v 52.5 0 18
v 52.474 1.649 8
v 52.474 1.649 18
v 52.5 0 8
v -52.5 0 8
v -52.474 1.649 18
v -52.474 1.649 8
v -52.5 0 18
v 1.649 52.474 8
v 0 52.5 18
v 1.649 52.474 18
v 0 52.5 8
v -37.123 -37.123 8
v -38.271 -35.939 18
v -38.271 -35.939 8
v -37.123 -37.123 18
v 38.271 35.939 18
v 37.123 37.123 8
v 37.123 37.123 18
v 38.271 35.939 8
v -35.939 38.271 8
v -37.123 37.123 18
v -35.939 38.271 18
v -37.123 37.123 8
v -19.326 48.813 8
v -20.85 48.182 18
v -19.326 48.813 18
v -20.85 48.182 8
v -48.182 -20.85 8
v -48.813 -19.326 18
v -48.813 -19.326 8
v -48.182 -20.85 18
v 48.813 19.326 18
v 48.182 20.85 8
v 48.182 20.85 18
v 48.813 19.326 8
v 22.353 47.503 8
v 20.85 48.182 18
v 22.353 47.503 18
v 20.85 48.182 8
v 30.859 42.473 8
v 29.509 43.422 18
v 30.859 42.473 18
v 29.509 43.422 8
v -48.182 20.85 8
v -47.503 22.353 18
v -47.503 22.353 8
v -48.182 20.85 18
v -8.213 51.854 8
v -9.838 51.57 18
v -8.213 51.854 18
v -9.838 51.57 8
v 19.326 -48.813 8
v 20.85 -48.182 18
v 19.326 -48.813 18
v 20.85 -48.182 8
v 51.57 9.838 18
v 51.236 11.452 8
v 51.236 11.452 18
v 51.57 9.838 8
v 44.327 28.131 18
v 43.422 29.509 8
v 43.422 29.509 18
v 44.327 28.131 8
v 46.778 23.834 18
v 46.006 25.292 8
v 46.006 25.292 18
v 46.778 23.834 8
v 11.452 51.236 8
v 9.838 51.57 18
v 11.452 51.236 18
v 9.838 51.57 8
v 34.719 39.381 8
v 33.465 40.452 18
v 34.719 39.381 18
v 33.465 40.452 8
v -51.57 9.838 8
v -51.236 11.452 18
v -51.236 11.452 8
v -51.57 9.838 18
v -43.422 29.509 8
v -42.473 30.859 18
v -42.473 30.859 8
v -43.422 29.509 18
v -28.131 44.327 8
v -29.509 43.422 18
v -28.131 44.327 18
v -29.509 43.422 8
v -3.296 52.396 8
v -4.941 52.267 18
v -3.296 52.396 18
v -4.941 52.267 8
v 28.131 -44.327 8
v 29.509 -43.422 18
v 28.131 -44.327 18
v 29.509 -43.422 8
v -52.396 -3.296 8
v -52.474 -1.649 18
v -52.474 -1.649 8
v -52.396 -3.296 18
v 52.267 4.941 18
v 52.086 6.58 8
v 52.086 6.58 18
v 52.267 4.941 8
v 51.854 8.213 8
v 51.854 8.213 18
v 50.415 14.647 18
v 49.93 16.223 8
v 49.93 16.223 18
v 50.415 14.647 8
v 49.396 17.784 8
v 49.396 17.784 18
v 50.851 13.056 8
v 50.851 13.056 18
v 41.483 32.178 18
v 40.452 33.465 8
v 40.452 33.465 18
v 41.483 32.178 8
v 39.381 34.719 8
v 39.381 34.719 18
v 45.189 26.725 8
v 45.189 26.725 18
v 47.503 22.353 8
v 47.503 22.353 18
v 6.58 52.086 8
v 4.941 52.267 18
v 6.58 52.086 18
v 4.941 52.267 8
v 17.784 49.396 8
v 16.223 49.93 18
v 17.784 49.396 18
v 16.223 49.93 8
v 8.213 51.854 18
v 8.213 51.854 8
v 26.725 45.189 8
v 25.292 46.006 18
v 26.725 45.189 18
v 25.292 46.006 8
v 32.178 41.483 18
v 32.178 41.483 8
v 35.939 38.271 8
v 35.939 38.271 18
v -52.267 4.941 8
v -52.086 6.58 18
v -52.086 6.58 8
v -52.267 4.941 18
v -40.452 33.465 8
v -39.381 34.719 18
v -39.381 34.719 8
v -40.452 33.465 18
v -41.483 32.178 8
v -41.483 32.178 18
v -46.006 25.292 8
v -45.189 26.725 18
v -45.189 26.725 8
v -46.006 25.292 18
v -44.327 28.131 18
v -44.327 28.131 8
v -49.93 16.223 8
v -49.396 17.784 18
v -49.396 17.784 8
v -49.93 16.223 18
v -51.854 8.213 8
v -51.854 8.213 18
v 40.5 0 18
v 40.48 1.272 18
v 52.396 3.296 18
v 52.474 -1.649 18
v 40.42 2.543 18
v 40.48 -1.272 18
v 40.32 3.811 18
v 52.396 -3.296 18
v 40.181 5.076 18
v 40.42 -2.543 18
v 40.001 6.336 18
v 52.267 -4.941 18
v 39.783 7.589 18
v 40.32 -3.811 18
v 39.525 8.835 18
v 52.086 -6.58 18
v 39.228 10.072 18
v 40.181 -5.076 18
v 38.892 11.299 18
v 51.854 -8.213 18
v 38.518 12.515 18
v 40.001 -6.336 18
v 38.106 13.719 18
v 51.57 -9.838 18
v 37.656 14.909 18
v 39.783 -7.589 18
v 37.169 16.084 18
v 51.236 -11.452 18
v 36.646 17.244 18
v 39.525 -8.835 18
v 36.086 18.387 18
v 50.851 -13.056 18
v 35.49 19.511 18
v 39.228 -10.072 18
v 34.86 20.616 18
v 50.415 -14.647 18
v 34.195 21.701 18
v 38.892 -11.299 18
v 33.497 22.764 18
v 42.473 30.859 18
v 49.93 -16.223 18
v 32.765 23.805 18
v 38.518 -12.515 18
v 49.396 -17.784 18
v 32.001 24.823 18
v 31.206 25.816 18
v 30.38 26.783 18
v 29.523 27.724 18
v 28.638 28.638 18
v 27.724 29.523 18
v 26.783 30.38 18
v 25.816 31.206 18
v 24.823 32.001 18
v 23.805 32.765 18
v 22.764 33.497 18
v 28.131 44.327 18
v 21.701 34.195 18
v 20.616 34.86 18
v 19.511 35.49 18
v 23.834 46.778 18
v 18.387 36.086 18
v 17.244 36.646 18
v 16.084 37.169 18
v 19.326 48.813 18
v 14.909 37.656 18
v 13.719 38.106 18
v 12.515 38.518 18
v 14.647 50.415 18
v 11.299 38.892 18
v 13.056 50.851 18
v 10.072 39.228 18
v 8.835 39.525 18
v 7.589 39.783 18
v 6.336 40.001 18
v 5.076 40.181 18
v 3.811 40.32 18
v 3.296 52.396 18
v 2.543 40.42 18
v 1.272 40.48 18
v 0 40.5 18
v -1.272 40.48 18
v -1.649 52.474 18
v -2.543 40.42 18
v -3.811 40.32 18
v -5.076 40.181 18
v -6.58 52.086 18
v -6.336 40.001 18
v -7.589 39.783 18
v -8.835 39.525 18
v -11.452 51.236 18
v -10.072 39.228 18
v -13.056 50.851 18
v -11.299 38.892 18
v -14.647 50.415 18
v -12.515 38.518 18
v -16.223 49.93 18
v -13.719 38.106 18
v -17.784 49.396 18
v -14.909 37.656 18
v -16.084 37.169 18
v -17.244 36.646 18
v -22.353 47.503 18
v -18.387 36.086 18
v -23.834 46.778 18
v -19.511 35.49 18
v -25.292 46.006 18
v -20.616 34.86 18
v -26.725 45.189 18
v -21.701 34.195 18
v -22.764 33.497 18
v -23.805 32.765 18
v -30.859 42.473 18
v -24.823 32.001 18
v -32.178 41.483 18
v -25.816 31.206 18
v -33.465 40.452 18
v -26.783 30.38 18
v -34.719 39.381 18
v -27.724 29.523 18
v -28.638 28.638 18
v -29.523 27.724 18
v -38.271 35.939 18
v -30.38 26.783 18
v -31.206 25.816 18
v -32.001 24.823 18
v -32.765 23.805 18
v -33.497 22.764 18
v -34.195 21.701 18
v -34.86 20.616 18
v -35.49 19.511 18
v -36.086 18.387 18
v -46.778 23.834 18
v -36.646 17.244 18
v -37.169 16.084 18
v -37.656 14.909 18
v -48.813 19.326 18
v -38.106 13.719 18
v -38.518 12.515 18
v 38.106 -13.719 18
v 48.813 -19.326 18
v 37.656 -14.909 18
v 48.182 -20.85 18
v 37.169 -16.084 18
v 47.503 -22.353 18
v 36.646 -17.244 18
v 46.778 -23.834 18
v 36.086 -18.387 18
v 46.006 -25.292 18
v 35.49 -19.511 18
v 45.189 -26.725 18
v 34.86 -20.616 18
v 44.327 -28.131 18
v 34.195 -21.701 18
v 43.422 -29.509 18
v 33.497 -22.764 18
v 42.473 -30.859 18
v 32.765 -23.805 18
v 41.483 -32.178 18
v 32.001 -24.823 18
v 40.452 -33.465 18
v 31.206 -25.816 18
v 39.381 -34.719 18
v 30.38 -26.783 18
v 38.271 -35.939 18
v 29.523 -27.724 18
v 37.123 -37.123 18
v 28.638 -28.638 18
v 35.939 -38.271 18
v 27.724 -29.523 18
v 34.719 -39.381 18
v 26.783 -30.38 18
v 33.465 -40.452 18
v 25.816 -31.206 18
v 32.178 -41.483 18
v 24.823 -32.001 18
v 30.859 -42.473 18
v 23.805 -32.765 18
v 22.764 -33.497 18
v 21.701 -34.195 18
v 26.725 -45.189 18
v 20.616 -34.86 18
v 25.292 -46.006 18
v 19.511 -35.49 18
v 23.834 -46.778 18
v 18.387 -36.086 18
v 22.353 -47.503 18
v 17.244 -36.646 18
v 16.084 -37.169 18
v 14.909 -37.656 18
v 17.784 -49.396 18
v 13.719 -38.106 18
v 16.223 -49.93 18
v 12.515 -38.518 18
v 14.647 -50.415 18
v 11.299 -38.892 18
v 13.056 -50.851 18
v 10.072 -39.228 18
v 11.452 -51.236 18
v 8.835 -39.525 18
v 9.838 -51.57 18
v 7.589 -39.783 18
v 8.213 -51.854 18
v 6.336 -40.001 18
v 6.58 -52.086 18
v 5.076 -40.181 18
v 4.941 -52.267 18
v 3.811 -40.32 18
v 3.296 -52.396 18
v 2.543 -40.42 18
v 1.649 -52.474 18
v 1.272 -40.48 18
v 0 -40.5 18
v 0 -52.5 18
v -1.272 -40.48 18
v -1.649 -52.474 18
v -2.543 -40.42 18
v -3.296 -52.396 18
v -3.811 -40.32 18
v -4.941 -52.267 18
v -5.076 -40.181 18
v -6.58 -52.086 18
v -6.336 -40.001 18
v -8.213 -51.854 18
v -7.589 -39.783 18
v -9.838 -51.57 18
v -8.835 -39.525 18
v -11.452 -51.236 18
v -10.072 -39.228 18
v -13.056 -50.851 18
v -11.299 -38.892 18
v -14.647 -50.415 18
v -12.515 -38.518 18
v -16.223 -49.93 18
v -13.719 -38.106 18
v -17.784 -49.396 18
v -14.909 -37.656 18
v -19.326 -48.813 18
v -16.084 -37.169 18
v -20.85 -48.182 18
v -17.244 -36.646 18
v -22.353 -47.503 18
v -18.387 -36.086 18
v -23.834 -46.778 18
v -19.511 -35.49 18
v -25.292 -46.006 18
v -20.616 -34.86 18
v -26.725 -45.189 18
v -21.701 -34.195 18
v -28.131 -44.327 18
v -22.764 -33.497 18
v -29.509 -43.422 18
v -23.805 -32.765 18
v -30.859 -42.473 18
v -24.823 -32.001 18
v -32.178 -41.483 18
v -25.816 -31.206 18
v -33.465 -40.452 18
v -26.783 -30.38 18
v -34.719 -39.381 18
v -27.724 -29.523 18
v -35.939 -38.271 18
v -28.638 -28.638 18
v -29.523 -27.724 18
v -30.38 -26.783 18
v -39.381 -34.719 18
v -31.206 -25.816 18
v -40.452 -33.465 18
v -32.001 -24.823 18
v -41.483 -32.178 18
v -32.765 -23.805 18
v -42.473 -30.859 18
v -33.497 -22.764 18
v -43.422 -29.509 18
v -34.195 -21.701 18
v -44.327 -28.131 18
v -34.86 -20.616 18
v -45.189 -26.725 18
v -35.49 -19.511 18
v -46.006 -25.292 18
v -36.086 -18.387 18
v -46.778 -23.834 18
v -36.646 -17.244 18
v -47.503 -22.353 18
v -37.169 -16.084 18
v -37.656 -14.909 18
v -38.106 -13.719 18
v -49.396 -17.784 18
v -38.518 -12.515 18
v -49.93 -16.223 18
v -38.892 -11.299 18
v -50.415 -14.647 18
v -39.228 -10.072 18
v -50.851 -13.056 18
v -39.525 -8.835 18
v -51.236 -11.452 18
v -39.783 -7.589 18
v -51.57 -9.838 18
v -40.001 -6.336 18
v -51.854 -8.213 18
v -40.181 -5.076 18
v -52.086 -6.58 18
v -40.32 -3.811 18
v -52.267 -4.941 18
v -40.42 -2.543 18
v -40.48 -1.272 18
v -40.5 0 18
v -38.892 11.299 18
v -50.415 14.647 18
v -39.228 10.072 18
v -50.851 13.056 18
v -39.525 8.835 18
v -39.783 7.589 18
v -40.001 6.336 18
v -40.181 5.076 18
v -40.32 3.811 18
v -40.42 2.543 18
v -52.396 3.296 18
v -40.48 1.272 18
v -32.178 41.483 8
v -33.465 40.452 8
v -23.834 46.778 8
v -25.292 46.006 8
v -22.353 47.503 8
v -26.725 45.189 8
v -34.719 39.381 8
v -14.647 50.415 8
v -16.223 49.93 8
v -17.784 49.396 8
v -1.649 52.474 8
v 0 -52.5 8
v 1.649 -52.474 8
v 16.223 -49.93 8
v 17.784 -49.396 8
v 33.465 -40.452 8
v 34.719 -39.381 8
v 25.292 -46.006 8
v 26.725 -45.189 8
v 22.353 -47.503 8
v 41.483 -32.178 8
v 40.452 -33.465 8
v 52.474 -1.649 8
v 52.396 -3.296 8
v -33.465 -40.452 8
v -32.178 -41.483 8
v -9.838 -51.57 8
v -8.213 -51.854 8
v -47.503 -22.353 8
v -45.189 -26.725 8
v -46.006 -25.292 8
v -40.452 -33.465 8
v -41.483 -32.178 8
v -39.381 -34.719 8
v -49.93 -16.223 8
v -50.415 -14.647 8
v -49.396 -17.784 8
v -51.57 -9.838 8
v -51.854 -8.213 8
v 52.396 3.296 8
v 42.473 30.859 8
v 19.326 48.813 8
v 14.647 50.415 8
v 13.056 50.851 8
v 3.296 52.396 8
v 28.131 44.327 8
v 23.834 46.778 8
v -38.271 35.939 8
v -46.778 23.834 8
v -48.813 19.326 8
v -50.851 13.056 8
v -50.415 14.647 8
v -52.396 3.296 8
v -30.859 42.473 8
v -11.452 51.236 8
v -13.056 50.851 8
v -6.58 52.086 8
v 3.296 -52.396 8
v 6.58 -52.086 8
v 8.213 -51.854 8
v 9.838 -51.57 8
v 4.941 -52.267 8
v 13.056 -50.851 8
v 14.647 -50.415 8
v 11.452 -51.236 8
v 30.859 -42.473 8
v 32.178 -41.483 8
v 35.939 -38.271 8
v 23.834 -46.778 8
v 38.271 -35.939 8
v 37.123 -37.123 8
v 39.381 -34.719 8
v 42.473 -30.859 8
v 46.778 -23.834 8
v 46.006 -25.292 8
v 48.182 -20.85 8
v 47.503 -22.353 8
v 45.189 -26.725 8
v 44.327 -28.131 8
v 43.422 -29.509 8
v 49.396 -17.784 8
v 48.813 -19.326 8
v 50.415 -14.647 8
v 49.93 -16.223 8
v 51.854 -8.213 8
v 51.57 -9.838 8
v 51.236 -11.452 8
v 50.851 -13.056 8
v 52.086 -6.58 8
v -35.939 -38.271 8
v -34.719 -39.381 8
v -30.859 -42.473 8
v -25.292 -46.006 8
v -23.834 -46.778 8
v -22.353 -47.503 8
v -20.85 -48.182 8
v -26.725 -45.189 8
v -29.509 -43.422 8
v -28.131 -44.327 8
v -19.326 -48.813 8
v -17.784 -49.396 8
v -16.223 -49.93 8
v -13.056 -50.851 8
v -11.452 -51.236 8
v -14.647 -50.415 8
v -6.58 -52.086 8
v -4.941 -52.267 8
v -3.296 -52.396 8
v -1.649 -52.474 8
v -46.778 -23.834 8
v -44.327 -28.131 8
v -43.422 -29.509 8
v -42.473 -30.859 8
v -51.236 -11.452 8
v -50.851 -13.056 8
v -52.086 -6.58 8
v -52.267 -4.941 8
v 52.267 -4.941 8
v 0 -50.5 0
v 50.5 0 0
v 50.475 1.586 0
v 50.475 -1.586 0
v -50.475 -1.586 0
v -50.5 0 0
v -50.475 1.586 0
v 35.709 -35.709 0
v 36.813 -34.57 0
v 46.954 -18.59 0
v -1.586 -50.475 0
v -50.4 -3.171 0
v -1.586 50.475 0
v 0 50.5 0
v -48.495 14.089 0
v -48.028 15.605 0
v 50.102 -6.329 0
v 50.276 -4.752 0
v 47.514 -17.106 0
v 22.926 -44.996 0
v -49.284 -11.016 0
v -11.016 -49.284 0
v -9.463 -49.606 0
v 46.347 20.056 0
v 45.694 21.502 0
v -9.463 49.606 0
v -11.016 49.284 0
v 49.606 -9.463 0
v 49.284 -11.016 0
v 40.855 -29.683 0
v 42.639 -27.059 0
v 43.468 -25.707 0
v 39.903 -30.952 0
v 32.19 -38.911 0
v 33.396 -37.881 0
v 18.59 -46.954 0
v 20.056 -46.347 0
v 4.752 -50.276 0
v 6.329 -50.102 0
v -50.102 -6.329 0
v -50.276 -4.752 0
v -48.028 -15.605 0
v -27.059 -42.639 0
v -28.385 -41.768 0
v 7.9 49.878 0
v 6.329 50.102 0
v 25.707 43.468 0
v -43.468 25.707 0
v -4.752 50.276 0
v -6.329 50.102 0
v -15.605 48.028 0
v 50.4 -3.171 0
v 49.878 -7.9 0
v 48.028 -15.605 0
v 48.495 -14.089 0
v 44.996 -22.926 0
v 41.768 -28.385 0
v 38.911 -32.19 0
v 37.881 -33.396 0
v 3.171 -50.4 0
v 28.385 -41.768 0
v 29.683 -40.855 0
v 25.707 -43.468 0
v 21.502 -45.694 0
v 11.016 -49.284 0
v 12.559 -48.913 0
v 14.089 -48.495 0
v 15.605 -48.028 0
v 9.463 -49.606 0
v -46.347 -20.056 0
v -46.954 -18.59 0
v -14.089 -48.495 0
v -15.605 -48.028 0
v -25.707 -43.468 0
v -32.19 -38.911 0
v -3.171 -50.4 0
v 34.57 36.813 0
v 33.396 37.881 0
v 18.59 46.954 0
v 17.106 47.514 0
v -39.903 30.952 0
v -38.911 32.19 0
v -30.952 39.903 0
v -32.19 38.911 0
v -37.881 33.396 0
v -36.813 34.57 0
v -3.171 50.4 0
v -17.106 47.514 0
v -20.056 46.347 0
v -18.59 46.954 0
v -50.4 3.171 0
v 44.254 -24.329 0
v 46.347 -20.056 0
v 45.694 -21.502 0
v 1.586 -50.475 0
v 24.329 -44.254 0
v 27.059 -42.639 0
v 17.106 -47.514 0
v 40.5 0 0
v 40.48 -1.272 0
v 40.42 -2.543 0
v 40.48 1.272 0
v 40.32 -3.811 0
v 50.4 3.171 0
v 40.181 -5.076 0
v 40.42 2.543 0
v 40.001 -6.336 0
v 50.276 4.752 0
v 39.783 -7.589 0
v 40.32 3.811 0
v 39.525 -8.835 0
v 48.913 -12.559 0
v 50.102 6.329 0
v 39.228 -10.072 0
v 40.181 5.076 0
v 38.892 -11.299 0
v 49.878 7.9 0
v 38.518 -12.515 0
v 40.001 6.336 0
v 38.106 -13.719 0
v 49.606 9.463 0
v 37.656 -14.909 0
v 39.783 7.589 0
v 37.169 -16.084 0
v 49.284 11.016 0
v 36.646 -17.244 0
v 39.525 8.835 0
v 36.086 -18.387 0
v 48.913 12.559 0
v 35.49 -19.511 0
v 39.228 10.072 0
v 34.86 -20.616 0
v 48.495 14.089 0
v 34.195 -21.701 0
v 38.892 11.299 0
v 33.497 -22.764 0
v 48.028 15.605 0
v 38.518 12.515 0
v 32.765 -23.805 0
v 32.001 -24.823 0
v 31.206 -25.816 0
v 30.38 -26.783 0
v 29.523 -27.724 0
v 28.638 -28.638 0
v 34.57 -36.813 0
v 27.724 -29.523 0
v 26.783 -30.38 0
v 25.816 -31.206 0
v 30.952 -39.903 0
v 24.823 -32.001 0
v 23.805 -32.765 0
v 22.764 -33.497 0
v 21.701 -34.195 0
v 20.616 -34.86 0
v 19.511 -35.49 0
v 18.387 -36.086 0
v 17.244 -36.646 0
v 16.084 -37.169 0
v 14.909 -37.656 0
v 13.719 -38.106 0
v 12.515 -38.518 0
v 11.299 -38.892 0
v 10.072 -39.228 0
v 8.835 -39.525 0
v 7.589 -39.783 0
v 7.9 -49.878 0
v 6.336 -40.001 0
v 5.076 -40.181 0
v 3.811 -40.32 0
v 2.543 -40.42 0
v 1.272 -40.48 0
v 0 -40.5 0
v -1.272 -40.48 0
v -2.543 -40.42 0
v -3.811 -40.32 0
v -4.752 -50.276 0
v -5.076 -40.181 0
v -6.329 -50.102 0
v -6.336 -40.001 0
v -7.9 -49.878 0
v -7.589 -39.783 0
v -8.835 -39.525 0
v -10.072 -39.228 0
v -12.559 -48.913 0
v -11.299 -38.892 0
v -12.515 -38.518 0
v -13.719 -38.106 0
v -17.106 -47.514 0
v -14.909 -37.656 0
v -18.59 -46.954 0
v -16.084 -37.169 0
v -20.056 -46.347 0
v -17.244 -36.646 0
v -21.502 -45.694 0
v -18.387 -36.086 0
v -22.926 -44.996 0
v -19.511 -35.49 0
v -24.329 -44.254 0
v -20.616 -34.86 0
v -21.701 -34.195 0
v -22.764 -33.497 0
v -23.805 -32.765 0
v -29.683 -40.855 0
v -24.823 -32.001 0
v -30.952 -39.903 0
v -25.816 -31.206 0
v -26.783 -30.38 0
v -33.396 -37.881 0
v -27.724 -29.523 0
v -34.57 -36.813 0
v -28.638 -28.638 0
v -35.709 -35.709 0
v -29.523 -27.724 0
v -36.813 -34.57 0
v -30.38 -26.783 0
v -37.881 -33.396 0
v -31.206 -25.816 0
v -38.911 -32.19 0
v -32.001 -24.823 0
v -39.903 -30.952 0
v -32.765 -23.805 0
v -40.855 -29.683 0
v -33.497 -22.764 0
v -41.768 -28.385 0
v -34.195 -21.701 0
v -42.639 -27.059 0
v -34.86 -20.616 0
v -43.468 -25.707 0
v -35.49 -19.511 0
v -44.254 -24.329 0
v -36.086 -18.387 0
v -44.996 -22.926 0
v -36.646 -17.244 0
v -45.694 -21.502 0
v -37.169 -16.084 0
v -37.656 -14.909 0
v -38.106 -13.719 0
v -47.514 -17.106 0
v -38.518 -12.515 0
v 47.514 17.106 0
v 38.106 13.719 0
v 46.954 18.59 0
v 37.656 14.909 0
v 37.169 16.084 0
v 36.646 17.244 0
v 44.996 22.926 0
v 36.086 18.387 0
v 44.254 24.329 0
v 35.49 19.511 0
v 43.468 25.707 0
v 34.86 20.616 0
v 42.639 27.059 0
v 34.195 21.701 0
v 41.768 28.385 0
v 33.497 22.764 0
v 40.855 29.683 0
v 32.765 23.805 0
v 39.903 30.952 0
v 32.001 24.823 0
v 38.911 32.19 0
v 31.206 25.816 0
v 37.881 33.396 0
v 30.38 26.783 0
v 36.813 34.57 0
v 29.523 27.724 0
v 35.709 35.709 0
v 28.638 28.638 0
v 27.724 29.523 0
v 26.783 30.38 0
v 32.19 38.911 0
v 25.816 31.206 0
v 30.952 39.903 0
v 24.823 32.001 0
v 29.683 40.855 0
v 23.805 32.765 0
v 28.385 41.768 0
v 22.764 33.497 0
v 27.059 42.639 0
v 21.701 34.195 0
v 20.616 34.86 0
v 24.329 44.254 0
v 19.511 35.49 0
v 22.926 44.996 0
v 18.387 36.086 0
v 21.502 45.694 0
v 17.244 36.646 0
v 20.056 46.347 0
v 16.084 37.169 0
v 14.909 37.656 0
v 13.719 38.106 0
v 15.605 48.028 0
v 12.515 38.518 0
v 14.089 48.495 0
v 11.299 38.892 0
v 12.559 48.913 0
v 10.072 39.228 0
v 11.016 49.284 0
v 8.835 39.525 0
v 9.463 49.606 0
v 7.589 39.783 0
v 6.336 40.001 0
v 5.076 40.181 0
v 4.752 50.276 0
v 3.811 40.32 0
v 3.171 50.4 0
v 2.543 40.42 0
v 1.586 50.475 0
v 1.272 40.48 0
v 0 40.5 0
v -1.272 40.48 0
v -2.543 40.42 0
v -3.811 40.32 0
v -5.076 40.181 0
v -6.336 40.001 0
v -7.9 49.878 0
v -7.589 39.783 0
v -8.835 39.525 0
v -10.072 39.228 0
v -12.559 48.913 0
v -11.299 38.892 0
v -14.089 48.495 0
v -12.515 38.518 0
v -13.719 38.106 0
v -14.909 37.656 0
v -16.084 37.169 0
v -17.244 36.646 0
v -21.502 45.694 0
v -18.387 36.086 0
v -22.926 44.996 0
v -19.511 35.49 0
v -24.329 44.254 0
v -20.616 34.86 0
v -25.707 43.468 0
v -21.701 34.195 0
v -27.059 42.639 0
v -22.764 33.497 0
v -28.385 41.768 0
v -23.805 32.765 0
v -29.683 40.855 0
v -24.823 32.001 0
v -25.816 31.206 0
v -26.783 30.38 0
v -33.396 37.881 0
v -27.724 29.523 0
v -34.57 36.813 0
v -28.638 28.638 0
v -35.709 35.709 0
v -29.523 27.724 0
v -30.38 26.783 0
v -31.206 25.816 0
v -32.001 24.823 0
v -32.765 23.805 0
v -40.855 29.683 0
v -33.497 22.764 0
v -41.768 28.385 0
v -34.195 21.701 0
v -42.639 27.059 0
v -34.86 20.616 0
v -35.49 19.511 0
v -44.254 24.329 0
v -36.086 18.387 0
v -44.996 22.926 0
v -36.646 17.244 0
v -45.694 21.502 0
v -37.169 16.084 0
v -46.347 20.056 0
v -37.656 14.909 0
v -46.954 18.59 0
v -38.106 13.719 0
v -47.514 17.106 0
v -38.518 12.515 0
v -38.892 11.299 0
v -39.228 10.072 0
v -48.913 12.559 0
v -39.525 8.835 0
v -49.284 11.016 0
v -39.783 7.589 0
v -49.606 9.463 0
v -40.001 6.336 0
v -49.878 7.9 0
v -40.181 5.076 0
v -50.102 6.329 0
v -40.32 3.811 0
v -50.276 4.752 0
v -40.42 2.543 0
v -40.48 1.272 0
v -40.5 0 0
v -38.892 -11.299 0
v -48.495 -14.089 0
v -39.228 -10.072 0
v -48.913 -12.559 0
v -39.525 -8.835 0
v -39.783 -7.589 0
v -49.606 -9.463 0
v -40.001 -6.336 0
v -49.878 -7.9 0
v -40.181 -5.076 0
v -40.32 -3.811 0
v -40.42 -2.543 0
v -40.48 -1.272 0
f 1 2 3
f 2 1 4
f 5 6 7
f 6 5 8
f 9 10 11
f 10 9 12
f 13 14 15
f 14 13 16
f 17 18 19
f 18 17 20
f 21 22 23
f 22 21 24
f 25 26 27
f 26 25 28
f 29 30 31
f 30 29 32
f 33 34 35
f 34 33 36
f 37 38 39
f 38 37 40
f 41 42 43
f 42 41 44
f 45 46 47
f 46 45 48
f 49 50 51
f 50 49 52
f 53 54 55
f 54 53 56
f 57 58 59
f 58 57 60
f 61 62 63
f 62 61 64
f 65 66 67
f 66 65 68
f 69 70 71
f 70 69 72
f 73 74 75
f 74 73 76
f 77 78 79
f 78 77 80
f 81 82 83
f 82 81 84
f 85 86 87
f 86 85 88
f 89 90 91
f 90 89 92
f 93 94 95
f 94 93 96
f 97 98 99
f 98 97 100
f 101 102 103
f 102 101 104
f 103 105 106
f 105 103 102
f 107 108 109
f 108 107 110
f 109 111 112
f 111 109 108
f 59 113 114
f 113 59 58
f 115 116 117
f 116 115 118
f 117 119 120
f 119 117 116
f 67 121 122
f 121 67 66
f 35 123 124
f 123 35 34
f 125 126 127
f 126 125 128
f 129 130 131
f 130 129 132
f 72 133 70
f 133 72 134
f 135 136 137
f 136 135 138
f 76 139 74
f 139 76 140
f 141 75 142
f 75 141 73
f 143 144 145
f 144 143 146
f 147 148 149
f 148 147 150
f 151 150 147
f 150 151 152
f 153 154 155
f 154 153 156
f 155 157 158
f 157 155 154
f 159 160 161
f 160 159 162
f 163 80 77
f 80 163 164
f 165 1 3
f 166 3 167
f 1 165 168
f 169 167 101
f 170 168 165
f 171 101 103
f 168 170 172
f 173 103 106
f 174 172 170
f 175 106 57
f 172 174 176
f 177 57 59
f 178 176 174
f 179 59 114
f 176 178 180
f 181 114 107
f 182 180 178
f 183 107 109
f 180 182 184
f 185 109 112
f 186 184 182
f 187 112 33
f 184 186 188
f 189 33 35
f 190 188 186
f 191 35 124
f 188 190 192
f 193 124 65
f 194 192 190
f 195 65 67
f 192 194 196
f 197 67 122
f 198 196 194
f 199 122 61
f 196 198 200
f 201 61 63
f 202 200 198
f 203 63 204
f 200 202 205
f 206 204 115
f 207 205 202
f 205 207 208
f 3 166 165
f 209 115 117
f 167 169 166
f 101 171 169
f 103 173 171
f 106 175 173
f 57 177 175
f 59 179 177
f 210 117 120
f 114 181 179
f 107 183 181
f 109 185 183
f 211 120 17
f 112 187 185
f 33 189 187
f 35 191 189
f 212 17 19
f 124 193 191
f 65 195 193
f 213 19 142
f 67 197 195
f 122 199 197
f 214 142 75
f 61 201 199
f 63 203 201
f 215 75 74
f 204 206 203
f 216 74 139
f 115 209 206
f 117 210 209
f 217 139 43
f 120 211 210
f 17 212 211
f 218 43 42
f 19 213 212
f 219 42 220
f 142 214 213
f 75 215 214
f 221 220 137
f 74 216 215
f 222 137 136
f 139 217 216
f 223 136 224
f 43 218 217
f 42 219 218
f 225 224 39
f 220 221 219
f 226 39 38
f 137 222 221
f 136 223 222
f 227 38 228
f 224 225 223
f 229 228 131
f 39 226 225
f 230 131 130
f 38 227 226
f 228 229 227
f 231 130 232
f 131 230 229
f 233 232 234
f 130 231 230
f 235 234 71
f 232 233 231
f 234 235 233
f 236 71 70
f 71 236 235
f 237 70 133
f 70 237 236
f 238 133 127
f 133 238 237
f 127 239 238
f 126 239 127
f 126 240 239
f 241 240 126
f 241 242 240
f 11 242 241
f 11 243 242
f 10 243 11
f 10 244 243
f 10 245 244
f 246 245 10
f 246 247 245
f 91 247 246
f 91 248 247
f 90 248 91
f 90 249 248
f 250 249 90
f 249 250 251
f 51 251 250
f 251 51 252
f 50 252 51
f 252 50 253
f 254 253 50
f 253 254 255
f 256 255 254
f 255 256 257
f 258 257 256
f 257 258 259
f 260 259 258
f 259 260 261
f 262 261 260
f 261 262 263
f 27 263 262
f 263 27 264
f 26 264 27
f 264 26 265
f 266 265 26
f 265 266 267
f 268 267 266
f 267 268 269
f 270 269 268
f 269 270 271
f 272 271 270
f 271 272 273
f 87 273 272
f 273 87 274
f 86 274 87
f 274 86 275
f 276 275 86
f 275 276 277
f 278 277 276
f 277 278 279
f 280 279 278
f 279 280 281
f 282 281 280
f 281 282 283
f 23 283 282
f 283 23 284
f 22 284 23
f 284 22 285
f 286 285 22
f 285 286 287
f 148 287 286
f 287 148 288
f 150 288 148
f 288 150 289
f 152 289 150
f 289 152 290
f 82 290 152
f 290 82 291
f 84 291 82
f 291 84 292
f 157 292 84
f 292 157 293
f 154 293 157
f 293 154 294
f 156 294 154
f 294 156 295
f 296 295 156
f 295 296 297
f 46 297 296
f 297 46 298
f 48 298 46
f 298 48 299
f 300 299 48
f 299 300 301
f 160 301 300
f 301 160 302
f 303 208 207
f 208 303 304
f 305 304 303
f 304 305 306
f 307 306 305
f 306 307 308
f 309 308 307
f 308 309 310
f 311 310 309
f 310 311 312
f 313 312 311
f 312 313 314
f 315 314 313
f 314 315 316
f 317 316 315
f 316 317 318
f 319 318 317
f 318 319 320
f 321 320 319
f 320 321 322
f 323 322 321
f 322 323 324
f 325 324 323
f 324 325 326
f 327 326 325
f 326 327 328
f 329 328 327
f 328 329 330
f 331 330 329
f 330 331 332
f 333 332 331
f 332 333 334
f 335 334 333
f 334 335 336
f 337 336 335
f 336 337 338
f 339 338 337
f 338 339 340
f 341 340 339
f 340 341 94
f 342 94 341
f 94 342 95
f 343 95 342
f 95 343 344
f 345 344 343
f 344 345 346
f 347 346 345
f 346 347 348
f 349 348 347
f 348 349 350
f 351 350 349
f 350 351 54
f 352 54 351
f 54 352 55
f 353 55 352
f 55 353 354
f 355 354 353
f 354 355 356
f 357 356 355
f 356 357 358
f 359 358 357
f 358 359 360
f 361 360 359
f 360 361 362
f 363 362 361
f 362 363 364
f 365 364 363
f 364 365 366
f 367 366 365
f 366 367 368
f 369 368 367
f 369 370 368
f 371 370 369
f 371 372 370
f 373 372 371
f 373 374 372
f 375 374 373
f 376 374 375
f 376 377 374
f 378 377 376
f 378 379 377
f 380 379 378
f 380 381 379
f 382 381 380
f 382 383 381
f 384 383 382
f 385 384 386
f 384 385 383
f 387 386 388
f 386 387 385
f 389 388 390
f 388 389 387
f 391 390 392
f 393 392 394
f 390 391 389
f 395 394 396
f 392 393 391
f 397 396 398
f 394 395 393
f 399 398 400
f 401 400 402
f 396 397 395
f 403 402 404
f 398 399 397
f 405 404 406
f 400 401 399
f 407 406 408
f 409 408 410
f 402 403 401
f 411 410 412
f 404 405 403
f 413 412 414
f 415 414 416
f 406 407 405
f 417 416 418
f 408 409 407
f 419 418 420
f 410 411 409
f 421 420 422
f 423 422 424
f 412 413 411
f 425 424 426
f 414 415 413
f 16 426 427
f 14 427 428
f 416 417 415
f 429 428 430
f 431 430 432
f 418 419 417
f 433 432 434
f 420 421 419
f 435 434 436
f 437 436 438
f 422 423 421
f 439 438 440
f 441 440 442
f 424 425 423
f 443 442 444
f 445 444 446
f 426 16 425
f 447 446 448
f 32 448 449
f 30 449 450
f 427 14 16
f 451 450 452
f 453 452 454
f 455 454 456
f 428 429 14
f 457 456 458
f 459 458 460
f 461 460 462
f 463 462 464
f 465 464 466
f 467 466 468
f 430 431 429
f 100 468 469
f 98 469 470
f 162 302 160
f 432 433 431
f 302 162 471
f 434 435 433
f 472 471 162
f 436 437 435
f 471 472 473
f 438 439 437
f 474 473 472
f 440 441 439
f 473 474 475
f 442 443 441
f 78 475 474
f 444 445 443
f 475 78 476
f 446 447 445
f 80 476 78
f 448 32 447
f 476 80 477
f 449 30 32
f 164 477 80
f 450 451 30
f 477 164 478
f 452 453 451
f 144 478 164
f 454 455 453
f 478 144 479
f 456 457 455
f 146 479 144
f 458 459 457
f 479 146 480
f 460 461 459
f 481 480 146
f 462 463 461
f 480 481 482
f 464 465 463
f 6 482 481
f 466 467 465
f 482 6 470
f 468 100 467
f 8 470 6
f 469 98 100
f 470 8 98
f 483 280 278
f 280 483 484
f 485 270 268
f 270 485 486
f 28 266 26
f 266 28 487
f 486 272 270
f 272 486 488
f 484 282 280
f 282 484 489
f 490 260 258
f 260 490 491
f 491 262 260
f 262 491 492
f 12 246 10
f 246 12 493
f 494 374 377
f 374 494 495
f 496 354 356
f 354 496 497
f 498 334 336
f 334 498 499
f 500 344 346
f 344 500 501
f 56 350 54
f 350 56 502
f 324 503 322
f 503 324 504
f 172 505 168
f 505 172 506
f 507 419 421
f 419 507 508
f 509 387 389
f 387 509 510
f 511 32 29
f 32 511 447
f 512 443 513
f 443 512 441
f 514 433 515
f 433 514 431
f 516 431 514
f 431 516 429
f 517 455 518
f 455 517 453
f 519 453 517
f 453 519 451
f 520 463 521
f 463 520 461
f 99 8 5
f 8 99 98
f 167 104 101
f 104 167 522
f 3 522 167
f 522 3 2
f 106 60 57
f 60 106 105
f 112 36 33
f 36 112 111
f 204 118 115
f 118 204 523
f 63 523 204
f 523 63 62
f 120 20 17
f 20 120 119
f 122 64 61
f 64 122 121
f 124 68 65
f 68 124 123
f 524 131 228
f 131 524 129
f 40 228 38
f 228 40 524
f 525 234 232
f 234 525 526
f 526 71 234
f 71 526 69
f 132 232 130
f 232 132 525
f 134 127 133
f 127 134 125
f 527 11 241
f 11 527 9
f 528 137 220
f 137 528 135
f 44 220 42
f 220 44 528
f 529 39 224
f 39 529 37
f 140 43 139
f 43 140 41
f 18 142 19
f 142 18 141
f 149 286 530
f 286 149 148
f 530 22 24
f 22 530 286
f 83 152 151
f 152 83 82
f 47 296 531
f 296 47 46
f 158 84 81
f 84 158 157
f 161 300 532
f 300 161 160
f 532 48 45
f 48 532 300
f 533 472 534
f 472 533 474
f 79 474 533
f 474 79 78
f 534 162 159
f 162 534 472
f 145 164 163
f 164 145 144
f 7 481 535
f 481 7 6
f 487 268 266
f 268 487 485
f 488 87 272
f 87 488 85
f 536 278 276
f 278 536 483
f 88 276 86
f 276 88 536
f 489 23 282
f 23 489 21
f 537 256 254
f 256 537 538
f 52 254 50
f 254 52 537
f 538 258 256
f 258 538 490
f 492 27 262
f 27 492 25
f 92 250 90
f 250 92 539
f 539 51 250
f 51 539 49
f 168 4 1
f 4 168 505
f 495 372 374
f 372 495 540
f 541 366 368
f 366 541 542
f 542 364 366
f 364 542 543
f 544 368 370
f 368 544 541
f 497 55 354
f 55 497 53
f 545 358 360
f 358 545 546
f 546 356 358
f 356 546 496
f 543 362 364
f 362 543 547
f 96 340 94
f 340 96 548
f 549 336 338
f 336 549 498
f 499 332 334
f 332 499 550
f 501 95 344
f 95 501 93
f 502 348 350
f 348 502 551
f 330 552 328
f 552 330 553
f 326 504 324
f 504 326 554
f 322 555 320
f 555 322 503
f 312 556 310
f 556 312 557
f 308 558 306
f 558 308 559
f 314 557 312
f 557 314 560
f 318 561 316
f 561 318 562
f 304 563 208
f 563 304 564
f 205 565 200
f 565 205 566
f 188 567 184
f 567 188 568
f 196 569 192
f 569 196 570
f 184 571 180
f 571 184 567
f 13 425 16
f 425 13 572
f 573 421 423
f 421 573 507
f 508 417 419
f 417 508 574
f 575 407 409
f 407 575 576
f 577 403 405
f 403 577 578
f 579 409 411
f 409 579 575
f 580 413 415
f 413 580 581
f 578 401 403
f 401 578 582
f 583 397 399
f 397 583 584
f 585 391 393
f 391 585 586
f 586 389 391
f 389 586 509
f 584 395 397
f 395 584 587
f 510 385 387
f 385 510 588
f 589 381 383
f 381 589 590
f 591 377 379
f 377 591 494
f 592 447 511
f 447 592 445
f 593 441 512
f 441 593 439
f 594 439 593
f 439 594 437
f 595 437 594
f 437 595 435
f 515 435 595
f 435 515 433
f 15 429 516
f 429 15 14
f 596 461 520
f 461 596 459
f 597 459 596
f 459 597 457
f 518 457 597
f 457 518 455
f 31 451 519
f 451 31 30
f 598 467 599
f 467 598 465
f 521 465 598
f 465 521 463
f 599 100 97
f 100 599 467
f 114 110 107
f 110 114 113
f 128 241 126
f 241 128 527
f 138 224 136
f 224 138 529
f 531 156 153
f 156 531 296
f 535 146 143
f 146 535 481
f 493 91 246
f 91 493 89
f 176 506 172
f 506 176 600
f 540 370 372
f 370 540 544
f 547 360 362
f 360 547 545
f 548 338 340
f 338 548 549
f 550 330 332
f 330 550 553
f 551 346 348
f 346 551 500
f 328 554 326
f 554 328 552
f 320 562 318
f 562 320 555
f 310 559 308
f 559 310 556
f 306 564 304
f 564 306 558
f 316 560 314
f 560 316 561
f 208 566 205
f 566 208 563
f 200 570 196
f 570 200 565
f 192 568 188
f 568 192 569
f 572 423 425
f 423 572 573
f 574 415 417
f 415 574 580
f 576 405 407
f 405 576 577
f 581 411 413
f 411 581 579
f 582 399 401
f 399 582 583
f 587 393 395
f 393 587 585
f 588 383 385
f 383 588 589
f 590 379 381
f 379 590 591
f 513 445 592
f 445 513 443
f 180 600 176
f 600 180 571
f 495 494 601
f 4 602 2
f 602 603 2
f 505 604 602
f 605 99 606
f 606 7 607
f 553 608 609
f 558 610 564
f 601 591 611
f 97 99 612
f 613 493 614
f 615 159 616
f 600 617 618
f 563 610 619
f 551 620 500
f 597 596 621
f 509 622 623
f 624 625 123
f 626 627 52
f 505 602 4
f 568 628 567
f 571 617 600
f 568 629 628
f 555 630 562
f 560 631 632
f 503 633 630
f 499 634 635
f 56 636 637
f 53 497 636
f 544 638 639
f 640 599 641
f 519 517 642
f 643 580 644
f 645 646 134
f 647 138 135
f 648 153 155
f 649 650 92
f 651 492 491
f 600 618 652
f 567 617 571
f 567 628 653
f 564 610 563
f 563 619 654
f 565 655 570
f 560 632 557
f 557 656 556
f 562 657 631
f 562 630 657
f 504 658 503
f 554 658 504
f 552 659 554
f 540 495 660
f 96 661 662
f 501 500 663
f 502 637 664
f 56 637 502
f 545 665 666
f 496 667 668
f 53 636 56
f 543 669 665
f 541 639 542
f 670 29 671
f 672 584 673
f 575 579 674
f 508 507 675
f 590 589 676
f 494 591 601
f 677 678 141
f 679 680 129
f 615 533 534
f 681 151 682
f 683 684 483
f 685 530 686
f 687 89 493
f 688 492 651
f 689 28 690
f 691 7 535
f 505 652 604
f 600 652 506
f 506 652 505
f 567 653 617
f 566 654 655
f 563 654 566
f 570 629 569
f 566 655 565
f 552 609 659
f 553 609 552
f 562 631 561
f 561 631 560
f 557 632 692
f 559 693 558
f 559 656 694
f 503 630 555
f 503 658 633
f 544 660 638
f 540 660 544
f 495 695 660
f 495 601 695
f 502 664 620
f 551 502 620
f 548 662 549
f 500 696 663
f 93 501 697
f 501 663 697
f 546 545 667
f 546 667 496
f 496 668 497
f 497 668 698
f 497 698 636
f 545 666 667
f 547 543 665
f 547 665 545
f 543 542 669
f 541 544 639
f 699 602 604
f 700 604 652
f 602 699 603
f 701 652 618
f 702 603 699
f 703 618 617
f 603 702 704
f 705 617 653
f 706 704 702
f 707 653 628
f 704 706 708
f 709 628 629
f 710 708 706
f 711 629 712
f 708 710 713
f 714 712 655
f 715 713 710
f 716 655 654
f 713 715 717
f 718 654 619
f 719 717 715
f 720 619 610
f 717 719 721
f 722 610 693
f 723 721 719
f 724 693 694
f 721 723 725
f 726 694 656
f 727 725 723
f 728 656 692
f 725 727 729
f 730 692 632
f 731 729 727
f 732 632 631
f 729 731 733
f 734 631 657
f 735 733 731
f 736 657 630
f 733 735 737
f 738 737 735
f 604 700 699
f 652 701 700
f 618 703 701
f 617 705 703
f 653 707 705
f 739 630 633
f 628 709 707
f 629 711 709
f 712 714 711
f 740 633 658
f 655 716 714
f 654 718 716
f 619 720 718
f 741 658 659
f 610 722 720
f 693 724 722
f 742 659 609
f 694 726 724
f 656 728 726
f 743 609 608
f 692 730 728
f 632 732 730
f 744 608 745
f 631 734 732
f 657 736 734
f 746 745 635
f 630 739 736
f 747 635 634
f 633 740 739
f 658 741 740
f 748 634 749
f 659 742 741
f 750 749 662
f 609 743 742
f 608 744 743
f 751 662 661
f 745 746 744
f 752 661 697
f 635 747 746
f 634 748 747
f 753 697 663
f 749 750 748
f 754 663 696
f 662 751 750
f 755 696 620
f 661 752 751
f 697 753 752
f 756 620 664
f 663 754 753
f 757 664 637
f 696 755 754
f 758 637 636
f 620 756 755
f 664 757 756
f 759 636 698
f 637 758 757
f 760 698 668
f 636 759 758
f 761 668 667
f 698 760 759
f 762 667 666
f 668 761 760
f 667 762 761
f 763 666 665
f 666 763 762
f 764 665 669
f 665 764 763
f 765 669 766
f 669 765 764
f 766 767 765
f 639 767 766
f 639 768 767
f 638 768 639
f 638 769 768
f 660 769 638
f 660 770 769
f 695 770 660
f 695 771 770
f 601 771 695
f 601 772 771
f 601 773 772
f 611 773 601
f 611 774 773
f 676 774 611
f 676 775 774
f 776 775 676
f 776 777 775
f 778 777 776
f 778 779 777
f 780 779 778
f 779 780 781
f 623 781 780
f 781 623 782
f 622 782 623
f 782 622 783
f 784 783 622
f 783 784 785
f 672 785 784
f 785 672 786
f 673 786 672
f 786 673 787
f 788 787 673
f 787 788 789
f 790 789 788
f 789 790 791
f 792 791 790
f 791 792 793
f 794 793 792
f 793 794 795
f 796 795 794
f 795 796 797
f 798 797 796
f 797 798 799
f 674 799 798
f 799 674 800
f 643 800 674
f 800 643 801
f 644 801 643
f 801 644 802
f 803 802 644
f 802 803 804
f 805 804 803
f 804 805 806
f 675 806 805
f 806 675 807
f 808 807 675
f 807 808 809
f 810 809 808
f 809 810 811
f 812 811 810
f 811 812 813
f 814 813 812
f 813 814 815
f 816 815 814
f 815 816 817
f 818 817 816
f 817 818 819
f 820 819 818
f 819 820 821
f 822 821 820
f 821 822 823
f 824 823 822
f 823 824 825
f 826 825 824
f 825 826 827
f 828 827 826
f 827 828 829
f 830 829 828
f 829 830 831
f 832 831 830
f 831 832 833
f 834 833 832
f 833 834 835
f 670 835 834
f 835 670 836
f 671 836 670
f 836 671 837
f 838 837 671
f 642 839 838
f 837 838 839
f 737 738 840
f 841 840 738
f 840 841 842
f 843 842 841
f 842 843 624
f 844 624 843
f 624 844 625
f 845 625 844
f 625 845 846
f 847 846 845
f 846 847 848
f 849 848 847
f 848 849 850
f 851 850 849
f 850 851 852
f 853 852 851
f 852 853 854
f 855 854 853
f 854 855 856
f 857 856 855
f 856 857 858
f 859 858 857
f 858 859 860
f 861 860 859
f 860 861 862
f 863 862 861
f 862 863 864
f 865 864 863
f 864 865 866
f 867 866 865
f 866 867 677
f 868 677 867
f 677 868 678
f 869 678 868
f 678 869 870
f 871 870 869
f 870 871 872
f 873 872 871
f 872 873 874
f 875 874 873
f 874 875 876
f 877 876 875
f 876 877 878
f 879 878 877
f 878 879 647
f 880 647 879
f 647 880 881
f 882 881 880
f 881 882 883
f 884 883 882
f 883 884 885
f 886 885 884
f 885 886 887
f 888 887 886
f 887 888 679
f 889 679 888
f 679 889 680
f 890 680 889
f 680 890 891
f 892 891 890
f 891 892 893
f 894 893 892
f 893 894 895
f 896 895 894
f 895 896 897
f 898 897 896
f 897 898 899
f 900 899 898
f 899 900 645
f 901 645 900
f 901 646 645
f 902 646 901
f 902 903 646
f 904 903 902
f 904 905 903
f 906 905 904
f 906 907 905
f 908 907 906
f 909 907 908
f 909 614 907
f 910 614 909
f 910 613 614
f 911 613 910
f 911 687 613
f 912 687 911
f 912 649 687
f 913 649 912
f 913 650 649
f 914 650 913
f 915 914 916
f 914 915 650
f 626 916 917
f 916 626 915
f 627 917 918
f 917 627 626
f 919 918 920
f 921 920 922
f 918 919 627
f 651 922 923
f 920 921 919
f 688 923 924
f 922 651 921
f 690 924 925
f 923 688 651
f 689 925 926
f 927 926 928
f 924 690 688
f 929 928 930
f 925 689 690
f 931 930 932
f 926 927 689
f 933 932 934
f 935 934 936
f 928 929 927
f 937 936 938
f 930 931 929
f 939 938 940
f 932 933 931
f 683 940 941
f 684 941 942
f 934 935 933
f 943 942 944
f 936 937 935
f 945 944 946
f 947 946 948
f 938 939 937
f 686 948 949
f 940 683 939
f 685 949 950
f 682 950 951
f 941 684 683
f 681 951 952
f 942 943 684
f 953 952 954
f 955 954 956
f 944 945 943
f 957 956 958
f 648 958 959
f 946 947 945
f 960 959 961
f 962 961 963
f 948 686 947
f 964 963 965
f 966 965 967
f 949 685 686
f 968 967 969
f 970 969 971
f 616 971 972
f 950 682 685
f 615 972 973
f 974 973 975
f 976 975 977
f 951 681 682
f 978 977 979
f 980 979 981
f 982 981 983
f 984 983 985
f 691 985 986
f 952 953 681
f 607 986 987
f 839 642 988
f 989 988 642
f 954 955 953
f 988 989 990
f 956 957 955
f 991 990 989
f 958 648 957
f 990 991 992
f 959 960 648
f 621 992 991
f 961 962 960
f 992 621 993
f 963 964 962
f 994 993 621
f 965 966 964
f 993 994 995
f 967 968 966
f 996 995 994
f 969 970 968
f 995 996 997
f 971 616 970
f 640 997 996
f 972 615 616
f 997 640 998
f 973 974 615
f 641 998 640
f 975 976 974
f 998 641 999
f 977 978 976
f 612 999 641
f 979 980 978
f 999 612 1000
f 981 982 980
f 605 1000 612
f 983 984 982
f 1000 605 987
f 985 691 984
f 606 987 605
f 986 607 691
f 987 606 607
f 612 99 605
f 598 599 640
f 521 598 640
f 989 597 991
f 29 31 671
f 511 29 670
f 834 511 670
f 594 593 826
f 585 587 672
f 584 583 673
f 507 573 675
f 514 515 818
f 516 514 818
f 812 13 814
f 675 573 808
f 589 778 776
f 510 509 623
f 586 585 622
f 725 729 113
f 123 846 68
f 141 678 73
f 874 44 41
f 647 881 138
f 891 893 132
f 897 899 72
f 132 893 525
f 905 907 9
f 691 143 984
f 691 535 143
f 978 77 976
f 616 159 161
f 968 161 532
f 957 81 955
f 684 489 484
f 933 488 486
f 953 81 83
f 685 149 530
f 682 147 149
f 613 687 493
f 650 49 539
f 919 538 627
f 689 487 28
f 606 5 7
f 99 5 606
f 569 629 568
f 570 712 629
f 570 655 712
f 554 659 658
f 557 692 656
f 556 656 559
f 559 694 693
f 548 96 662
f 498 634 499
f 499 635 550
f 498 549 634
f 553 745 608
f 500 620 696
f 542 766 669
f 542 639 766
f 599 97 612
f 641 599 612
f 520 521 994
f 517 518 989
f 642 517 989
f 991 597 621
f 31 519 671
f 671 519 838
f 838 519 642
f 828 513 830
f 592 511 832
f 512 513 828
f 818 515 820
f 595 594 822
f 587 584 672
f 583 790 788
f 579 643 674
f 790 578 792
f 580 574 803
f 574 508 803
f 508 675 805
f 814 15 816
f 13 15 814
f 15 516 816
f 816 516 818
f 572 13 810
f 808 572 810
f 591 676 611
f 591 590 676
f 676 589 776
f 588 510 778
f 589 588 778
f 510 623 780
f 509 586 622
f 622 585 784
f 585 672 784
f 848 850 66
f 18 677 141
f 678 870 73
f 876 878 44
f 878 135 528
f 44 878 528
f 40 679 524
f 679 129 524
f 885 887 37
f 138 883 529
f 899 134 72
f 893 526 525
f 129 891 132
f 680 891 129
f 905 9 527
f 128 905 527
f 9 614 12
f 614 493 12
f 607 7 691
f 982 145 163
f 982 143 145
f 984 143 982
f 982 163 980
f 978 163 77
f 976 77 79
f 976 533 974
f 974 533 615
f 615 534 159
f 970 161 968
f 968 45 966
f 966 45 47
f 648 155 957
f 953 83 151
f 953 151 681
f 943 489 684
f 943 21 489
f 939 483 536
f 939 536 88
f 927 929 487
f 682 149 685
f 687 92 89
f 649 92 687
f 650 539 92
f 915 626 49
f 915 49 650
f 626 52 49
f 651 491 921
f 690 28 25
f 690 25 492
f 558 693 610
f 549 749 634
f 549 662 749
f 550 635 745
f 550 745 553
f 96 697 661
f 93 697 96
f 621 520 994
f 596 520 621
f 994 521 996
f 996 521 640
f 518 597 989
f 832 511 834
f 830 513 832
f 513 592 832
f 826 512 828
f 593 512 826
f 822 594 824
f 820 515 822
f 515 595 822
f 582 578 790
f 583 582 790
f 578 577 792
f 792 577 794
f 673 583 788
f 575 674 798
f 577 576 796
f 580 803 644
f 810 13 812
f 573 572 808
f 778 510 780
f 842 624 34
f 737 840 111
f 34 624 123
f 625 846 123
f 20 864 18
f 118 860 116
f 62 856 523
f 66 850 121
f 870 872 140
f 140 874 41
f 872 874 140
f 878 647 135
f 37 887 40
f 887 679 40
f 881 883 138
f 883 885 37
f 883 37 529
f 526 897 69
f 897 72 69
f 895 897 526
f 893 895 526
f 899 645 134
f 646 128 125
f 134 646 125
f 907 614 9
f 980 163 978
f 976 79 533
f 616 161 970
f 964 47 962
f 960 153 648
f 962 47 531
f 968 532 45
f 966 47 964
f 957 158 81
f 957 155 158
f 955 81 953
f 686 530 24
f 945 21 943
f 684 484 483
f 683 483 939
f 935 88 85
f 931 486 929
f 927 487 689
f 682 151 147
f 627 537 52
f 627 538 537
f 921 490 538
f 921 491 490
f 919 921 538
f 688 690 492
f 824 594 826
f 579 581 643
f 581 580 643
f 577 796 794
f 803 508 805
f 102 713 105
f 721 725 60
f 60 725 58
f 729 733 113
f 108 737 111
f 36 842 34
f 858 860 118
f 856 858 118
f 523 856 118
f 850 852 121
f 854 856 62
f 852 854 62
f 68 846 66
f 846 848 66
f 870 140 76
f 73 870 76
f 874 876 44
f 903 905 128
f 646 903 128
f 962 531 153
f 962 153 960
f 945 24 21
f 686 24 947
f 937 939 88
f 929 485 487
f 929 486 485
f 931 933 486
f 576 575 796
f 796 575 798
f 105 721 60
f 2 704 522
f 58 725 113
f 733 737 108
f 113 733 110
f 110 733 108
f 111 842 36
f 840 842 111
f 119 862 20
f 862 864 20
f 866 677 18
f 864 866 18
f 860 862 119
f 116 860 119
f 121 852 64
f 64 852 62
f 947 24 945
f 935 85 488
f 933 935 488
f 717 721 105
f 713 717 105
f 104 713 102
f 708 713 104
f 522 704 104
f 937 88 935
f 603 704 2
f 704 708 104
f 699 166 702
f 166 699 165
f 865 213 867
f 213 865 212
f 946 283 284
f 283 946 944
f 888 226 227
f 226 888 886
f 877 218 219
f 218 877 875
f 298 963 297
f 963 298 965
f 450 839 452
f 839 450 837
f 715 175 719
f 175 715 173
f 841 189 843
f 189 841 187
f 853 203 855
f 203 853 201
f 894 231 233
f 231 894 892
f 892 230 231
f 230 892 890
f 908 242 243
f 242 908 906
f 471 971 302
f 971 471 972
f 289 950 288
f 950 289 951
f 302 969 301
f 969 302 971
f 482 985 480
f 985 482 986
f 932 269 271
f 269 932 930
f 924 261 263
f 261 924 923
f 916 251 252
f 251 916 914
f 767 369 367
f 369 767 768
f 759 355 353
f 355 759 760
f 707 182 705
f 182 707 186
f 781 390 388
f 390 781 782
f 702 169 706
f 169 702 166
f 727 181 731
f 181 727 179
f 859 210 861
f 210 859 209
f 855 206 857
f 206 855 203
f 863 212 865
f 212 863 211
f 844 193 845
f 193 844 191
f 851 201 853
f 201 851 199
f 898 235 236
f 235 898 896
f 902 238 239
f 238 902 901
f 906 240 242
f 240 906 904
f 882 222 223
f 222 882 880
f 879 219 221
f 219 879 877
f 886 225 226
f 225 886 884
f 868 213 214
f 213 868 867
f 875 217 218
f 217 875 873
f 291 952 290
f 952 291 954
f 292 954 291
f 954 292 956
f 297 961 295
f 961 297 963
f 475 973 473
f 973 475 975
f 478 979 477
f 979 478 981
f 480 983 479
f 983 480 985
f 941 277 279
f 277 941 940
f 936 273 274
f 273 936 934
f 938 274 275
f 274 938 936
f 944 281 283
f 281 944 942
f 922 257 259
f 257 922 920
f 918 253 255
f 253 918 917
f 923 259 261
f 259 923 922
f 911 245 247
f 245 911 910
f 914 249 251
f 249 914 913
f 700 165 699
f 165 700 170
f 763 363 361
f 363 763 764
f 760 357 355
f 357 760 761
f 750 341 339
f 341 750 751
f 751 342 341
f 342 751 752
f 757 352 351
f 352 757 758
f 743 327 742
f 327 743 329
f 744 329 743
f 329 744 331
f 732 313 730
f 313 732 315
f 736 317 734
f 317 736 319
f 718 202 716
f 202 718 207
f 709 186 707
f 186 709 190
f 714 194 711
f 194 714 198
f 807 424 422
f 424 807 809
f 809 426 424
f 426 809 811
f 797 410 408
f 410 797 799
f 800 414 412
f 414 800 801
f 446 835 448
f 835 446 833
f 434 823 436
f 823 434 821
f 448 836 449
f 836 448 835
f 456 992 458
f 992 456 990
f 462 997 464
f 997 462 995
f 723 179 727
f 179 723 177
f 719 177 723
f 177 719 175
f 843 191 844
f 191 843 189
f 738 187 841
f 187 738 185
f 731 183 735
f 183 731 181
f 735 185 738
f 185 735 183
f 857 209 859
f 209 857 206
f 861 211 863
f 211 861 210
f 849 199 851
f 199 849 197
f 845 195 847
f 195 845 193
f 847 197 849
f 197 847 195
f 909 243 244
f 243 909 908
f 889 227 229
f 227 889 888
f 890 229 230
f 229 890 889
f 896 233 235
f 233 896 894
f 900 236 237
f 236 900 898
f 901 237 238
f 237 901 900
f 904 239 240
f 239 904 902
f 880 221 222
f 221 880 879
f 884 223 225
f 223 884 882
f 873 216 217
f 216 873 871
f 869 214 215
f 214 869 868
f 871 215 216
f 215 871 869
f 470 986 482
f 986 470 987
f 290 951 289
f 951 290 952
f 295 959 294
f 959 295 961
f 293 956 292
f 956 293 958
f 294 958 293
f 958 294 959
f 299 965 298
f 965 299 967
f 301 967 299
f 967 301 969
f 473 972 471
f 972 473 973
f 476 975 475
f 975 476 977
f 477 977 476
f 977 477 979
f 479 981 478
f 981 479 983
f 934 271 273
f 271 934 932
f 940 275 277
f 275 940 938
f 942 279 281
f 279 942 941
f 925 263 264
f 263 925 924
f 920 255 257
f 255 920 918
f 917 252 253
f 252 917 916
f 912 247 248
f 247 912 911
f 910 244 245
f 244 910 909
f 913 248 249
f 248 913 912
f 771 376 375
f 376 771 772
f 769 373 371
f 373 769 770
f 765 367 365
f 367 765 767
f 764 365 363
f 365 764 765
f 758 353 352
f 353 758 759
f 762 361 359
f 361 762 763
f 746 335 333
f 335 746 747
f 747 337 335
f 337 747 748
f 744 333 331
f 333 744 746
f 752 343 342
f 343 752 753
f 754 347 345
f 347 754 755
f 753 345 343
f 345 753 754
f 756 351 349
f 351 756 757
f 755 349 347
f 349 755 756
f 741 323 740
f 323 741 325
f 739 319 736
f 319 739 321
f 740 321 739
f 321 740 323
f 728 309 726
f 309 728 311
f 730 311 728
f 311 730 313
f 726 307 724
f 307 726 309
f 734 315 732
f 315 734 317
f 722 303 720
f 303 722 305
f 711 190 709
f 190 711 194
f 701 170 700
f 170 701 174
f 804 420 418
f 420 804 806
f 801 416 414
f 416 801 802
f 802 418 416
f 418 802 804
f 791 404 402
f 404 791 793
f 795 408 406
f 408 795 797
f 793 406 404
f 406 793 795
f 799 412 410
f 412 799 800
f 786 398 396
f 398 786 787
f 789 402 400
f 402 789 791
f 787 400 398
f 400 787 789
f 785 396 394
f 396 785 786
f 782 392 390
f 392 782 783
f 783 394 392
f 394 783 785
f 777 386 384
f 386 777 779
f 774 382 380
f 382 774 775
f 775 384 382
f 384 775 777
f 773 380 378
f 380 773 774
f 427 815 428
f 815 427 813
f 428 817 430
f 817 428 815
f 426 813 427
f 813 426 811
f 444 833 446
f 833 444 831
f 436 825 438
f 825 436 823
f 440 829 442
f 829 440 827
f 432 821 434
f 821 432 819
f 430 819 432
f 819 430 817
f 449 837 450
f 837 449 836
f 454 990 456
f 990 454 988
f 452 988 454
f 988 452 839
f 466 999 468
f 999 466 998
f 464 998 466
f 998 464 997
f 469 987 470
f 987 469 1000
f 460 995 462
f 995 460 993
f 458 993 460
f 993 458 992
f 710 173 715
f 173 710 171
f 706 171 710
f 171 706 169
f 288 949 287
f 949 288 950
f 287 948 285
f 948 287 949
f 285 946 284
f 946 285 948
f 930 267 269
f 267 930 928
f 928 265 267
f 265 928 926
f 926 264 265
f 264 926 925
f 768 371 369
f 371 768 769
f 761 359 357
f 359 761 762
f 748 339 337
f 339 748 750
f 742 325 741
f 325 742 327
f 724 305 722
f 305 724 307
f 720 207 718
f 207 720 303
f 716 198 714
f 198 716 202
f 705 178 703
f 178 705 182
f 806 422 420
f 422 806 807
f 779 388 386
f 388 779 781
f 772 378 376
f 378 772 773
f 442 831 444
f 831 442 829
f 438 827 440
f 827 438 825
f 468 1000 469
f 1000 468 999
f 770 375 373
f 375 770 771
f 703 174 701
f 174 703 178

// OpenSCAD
// file: ../library_deh/deh_shapes.scad
/* **** deh_shapes.scad *****
   * Library of useful shapes
   * 20170512
*/


/*  ***** tubedeh *****
d1 = outside diameter
d2 = inside diameter
ht = height
reference is center of tube, bottom
*/
module tubedeh(d1,d2,ht)
{
   difference()
   {
     cylinder(d = d1, h = ht, center = false);
     cylinder(d = d2, h = ht + .001, center = false);
   }
}
/* ***** rounded_bar *****
 * rectangular bar with rounded end
bar with one end rounded
rounded_bar(d, l, h)
d = diameter of rounded end, and width of bar
l = length of bar from center of rounded end to end
h = thickness (height) of bar
reference is center of rounded end, bottom
*/
module rounded_bar(d, l, h)
{
    // Rounded end
    cylinder(d = d, h = h, center = false);
    // Bar
    translate([0, -d/2, 0])
       cube([l, d, h],false);
}
/* ***** eyebar *****
 * rounded bar with hole in rounded end
 * module eye_bar(d1, d2, len, ht)
d1 = outside diameter of rounded end, and width of bar
d2 = diameter of hole in end of bar
*/
module eye_bar(d1, d2, len, ht)
{
   difference()
   {   
      rounded_bar(d1,len,ht);
      cylinder(d = d2, h = ht + .001, center = false);
   }
}
/* ***** rounded_rectangle ******
rounded_rectangle(l,w,h,rad);
l = length (x direction)
w = width (y direction)
h = thickness (z direction)
rad = radius of corners
reference = center of rectangle x,y, bottom
*/
module rounded_rectangle(l,w,h,rad)
{
  translate([-(l-rad)/2,-(w-rad)/2,0])
  {
    // Four rounded edges
    translate([0,0,0])
      rounded_bar(rad*2,l-rad,h);
    translate([l-rad,0,0])
      rotate([0,0,90])
      rounded_bar(rad*2,w-rad,h);
    translate([l-rad,w-rad,0])
      rotate([0,0,180])
      rounded_bar(rad*2,l-rad,h);
    translate([0,w-rad,0])
      rotate([0,0,-90])
      rounded_bar(rad*2,w-rad,h);
    // Fill in center
    translate([0,0,0])
      cube([l-rad + .01,w-rad + .01,h],false);
  }
}

/* ***** rounded rim *****
module rounded_rim(l,w,h,rad,tk);
l = length (inside, x direction)
w = width (inside, y direction)
h = thickness (z direction)
rad = radius of corners
tk = thickness of rim wall
*/
module rounded_rim(l,w,h,rad,tk)
{
  difference()
  {
    rounded_rectangle(l+2*tk,w+2*tk,h,rad);
    rounded_rectangle(l, w, h, rad);
  }
}

/* ***** wedge *****
l = length
w = width
h = height/thickness
*/
 module wedge(l, w, h)
 {
   polyhedron(
      points=[[0,0,0], [l,0,0], [l,w,0], [0,w,0], [0,w,h], [l,w,h]],
       faces=[[0,1,2,3],[5,4,3,2],[0,4,5,1],[0,3,4],[5,2,1]] );
 }
/* ***** rounded_triangle *****
 * l1 = side 1
 * l2 = side 2
 * l3 = side 3
 * h  = height/thickness
 * rad = radius of rounded corners
 */
module rounded_triangle(l1,l2,l3,h,rad)
{
  // Compute rotation angles
  al3 = acos((l1*l1 + l2*l2 - l3*l3)/(2 * l1 * l2));
  al1 = acos((l2*l2 + l3*l3 - l1*l1)/(2 * l2 * l3));
  al2 = acos((l3*l3 + l1*l1 - l2*l2)/(2 * l3 * l1));
  // Setup bars for edges
  translate([0,0,0])
    rotate([0,0,0])
      rounded_bar(rad,l3,h);
  translate([l3,0,0])
    rotate([0,0,180-al2])
      rounded_bar(rad,l1,h);
  rotate([0,0,al1])
    translate([l2,0,0])
      rotate([0,0,180])
        rounded_bar(rad,l2,h);
  // Fill in center
    triangle(l1,l2,l3,h);
}
/* ***** triangle *****
 * l1 = side 1
 * l2 = side 2
 * l3 = side 3
 * h  = height/thickness
 */
module triangle(l1,l2,l3,h)
{
  // Compute rotation angle
  al1 = acos((l2*l2 + l3*l3 - l1*l1)/(2 * l2 * l3));
  
  linear_extrude(height = h)
  polygon(points = [[0,0],[l3,0],[l2*cos(al1),l2*sin(al1)]]);
}
/* ***** chamfered hole *****
 * Punch hole with chamfer on one end
 * d1 = main hole diameter
 * d2 = hole diameter at chamfered end
 * ht1 = height of whole hole
 * ht2 = depth of  chamfer
*/
module chamfered_hole(d1,d2,ht1,ht2)
{
   rotate_extrude(convexity = 10)
     polygon(points = [[0,0],[d1/2,0],[d1/2,ht1-ht2],[d2/2,ht1],[0,ht1]]);

}

/* ***** fillet *****
 * r = radius of fillet
 * l = length of fillet
 fillet (r,l);
*/
module fillet(r,l)
{
   difference()
   {
     union()
     {
       cube([2*r,2*r,l]);
     }
     union()
     {
       translate ([r,r,0])
           cylinder(d = 2*r + 0.1, h = l, center = false);
       translate([r,0,0])
           cube([r,2*r,l],center = false);
       translate([0,r,0])
           cube([2*r,r,l],center = false);
     }
   }
}
/* ***** circular chamfer *****
 * d = outer diameter
 * rad = chamfer radius
 * circular_chamfer(d, rad);
*/
module circular_chamfer(d, rad)
{
  ofs = (d/2 - rad);
  rotate_extrude()
  translate([ofs,0])
   difference()
   {
     union()
     {
       square(size = [rad, rad]);
     }
     union()
     {
       translate ([0,rad ])
           circle(d = 2*rad + 0.1);
     }
   }
}
module circular_inner_chamfer(d, rad)
{
  circular_chamfer(d, rad);
} 

/* ***** circular chamfer *****
 * d = inner diameter
 * rad = chamfer radius
 * circular_chamfer(d, rad);
*/
module circular_outer_chamfer(d, rad)
{
  ofs = (d/2 - rad);
  rotate_extrude()
  translate([ofs,0])
   difference()
   {
     union()
     {
       square(size = [rad, rad]);
     }
     union()
     {
       translate ([rad,rad ])
           circle(d = 2*rad + 0.1);
     }
   }
}
// main file
/* pod-insert3.scad
   POD #2 electronics holders:  GPS spacer
   03/15/2017
*/
include <../library_deh/deh_shapes.scad>

dia_od = (105); // diameter (inside of bottle)

thick_sides = 12;

$fn = 200;

side_ht = 18;	// Height of insert

chfm_ht = 8;
chfm_wid = 2;
module chamfer()
{
     // Sides with chamfer at bottom edge
//    difference()
     {
        cylinder(h = chfm_ht, 
           r1 = dia_od/2-chfm_wid, 
           r2 = dia_od/2, 
           center = false);
     }
 }

module insert()
{

  difference()
  {
   union()
    {
      translate([0,0,chfm_ht])
        cylinder(d = dia_od, h = side_ht-chfm_ht, center = false);
      chamfer();
    }
   union()
   {
      translate([0,0,-0.01])
        cylinder(d = dia_od-2*thick_sides, h = side_ht+10, center = false);
   }
  }
}

module total()
{
    insert();
}

total();
